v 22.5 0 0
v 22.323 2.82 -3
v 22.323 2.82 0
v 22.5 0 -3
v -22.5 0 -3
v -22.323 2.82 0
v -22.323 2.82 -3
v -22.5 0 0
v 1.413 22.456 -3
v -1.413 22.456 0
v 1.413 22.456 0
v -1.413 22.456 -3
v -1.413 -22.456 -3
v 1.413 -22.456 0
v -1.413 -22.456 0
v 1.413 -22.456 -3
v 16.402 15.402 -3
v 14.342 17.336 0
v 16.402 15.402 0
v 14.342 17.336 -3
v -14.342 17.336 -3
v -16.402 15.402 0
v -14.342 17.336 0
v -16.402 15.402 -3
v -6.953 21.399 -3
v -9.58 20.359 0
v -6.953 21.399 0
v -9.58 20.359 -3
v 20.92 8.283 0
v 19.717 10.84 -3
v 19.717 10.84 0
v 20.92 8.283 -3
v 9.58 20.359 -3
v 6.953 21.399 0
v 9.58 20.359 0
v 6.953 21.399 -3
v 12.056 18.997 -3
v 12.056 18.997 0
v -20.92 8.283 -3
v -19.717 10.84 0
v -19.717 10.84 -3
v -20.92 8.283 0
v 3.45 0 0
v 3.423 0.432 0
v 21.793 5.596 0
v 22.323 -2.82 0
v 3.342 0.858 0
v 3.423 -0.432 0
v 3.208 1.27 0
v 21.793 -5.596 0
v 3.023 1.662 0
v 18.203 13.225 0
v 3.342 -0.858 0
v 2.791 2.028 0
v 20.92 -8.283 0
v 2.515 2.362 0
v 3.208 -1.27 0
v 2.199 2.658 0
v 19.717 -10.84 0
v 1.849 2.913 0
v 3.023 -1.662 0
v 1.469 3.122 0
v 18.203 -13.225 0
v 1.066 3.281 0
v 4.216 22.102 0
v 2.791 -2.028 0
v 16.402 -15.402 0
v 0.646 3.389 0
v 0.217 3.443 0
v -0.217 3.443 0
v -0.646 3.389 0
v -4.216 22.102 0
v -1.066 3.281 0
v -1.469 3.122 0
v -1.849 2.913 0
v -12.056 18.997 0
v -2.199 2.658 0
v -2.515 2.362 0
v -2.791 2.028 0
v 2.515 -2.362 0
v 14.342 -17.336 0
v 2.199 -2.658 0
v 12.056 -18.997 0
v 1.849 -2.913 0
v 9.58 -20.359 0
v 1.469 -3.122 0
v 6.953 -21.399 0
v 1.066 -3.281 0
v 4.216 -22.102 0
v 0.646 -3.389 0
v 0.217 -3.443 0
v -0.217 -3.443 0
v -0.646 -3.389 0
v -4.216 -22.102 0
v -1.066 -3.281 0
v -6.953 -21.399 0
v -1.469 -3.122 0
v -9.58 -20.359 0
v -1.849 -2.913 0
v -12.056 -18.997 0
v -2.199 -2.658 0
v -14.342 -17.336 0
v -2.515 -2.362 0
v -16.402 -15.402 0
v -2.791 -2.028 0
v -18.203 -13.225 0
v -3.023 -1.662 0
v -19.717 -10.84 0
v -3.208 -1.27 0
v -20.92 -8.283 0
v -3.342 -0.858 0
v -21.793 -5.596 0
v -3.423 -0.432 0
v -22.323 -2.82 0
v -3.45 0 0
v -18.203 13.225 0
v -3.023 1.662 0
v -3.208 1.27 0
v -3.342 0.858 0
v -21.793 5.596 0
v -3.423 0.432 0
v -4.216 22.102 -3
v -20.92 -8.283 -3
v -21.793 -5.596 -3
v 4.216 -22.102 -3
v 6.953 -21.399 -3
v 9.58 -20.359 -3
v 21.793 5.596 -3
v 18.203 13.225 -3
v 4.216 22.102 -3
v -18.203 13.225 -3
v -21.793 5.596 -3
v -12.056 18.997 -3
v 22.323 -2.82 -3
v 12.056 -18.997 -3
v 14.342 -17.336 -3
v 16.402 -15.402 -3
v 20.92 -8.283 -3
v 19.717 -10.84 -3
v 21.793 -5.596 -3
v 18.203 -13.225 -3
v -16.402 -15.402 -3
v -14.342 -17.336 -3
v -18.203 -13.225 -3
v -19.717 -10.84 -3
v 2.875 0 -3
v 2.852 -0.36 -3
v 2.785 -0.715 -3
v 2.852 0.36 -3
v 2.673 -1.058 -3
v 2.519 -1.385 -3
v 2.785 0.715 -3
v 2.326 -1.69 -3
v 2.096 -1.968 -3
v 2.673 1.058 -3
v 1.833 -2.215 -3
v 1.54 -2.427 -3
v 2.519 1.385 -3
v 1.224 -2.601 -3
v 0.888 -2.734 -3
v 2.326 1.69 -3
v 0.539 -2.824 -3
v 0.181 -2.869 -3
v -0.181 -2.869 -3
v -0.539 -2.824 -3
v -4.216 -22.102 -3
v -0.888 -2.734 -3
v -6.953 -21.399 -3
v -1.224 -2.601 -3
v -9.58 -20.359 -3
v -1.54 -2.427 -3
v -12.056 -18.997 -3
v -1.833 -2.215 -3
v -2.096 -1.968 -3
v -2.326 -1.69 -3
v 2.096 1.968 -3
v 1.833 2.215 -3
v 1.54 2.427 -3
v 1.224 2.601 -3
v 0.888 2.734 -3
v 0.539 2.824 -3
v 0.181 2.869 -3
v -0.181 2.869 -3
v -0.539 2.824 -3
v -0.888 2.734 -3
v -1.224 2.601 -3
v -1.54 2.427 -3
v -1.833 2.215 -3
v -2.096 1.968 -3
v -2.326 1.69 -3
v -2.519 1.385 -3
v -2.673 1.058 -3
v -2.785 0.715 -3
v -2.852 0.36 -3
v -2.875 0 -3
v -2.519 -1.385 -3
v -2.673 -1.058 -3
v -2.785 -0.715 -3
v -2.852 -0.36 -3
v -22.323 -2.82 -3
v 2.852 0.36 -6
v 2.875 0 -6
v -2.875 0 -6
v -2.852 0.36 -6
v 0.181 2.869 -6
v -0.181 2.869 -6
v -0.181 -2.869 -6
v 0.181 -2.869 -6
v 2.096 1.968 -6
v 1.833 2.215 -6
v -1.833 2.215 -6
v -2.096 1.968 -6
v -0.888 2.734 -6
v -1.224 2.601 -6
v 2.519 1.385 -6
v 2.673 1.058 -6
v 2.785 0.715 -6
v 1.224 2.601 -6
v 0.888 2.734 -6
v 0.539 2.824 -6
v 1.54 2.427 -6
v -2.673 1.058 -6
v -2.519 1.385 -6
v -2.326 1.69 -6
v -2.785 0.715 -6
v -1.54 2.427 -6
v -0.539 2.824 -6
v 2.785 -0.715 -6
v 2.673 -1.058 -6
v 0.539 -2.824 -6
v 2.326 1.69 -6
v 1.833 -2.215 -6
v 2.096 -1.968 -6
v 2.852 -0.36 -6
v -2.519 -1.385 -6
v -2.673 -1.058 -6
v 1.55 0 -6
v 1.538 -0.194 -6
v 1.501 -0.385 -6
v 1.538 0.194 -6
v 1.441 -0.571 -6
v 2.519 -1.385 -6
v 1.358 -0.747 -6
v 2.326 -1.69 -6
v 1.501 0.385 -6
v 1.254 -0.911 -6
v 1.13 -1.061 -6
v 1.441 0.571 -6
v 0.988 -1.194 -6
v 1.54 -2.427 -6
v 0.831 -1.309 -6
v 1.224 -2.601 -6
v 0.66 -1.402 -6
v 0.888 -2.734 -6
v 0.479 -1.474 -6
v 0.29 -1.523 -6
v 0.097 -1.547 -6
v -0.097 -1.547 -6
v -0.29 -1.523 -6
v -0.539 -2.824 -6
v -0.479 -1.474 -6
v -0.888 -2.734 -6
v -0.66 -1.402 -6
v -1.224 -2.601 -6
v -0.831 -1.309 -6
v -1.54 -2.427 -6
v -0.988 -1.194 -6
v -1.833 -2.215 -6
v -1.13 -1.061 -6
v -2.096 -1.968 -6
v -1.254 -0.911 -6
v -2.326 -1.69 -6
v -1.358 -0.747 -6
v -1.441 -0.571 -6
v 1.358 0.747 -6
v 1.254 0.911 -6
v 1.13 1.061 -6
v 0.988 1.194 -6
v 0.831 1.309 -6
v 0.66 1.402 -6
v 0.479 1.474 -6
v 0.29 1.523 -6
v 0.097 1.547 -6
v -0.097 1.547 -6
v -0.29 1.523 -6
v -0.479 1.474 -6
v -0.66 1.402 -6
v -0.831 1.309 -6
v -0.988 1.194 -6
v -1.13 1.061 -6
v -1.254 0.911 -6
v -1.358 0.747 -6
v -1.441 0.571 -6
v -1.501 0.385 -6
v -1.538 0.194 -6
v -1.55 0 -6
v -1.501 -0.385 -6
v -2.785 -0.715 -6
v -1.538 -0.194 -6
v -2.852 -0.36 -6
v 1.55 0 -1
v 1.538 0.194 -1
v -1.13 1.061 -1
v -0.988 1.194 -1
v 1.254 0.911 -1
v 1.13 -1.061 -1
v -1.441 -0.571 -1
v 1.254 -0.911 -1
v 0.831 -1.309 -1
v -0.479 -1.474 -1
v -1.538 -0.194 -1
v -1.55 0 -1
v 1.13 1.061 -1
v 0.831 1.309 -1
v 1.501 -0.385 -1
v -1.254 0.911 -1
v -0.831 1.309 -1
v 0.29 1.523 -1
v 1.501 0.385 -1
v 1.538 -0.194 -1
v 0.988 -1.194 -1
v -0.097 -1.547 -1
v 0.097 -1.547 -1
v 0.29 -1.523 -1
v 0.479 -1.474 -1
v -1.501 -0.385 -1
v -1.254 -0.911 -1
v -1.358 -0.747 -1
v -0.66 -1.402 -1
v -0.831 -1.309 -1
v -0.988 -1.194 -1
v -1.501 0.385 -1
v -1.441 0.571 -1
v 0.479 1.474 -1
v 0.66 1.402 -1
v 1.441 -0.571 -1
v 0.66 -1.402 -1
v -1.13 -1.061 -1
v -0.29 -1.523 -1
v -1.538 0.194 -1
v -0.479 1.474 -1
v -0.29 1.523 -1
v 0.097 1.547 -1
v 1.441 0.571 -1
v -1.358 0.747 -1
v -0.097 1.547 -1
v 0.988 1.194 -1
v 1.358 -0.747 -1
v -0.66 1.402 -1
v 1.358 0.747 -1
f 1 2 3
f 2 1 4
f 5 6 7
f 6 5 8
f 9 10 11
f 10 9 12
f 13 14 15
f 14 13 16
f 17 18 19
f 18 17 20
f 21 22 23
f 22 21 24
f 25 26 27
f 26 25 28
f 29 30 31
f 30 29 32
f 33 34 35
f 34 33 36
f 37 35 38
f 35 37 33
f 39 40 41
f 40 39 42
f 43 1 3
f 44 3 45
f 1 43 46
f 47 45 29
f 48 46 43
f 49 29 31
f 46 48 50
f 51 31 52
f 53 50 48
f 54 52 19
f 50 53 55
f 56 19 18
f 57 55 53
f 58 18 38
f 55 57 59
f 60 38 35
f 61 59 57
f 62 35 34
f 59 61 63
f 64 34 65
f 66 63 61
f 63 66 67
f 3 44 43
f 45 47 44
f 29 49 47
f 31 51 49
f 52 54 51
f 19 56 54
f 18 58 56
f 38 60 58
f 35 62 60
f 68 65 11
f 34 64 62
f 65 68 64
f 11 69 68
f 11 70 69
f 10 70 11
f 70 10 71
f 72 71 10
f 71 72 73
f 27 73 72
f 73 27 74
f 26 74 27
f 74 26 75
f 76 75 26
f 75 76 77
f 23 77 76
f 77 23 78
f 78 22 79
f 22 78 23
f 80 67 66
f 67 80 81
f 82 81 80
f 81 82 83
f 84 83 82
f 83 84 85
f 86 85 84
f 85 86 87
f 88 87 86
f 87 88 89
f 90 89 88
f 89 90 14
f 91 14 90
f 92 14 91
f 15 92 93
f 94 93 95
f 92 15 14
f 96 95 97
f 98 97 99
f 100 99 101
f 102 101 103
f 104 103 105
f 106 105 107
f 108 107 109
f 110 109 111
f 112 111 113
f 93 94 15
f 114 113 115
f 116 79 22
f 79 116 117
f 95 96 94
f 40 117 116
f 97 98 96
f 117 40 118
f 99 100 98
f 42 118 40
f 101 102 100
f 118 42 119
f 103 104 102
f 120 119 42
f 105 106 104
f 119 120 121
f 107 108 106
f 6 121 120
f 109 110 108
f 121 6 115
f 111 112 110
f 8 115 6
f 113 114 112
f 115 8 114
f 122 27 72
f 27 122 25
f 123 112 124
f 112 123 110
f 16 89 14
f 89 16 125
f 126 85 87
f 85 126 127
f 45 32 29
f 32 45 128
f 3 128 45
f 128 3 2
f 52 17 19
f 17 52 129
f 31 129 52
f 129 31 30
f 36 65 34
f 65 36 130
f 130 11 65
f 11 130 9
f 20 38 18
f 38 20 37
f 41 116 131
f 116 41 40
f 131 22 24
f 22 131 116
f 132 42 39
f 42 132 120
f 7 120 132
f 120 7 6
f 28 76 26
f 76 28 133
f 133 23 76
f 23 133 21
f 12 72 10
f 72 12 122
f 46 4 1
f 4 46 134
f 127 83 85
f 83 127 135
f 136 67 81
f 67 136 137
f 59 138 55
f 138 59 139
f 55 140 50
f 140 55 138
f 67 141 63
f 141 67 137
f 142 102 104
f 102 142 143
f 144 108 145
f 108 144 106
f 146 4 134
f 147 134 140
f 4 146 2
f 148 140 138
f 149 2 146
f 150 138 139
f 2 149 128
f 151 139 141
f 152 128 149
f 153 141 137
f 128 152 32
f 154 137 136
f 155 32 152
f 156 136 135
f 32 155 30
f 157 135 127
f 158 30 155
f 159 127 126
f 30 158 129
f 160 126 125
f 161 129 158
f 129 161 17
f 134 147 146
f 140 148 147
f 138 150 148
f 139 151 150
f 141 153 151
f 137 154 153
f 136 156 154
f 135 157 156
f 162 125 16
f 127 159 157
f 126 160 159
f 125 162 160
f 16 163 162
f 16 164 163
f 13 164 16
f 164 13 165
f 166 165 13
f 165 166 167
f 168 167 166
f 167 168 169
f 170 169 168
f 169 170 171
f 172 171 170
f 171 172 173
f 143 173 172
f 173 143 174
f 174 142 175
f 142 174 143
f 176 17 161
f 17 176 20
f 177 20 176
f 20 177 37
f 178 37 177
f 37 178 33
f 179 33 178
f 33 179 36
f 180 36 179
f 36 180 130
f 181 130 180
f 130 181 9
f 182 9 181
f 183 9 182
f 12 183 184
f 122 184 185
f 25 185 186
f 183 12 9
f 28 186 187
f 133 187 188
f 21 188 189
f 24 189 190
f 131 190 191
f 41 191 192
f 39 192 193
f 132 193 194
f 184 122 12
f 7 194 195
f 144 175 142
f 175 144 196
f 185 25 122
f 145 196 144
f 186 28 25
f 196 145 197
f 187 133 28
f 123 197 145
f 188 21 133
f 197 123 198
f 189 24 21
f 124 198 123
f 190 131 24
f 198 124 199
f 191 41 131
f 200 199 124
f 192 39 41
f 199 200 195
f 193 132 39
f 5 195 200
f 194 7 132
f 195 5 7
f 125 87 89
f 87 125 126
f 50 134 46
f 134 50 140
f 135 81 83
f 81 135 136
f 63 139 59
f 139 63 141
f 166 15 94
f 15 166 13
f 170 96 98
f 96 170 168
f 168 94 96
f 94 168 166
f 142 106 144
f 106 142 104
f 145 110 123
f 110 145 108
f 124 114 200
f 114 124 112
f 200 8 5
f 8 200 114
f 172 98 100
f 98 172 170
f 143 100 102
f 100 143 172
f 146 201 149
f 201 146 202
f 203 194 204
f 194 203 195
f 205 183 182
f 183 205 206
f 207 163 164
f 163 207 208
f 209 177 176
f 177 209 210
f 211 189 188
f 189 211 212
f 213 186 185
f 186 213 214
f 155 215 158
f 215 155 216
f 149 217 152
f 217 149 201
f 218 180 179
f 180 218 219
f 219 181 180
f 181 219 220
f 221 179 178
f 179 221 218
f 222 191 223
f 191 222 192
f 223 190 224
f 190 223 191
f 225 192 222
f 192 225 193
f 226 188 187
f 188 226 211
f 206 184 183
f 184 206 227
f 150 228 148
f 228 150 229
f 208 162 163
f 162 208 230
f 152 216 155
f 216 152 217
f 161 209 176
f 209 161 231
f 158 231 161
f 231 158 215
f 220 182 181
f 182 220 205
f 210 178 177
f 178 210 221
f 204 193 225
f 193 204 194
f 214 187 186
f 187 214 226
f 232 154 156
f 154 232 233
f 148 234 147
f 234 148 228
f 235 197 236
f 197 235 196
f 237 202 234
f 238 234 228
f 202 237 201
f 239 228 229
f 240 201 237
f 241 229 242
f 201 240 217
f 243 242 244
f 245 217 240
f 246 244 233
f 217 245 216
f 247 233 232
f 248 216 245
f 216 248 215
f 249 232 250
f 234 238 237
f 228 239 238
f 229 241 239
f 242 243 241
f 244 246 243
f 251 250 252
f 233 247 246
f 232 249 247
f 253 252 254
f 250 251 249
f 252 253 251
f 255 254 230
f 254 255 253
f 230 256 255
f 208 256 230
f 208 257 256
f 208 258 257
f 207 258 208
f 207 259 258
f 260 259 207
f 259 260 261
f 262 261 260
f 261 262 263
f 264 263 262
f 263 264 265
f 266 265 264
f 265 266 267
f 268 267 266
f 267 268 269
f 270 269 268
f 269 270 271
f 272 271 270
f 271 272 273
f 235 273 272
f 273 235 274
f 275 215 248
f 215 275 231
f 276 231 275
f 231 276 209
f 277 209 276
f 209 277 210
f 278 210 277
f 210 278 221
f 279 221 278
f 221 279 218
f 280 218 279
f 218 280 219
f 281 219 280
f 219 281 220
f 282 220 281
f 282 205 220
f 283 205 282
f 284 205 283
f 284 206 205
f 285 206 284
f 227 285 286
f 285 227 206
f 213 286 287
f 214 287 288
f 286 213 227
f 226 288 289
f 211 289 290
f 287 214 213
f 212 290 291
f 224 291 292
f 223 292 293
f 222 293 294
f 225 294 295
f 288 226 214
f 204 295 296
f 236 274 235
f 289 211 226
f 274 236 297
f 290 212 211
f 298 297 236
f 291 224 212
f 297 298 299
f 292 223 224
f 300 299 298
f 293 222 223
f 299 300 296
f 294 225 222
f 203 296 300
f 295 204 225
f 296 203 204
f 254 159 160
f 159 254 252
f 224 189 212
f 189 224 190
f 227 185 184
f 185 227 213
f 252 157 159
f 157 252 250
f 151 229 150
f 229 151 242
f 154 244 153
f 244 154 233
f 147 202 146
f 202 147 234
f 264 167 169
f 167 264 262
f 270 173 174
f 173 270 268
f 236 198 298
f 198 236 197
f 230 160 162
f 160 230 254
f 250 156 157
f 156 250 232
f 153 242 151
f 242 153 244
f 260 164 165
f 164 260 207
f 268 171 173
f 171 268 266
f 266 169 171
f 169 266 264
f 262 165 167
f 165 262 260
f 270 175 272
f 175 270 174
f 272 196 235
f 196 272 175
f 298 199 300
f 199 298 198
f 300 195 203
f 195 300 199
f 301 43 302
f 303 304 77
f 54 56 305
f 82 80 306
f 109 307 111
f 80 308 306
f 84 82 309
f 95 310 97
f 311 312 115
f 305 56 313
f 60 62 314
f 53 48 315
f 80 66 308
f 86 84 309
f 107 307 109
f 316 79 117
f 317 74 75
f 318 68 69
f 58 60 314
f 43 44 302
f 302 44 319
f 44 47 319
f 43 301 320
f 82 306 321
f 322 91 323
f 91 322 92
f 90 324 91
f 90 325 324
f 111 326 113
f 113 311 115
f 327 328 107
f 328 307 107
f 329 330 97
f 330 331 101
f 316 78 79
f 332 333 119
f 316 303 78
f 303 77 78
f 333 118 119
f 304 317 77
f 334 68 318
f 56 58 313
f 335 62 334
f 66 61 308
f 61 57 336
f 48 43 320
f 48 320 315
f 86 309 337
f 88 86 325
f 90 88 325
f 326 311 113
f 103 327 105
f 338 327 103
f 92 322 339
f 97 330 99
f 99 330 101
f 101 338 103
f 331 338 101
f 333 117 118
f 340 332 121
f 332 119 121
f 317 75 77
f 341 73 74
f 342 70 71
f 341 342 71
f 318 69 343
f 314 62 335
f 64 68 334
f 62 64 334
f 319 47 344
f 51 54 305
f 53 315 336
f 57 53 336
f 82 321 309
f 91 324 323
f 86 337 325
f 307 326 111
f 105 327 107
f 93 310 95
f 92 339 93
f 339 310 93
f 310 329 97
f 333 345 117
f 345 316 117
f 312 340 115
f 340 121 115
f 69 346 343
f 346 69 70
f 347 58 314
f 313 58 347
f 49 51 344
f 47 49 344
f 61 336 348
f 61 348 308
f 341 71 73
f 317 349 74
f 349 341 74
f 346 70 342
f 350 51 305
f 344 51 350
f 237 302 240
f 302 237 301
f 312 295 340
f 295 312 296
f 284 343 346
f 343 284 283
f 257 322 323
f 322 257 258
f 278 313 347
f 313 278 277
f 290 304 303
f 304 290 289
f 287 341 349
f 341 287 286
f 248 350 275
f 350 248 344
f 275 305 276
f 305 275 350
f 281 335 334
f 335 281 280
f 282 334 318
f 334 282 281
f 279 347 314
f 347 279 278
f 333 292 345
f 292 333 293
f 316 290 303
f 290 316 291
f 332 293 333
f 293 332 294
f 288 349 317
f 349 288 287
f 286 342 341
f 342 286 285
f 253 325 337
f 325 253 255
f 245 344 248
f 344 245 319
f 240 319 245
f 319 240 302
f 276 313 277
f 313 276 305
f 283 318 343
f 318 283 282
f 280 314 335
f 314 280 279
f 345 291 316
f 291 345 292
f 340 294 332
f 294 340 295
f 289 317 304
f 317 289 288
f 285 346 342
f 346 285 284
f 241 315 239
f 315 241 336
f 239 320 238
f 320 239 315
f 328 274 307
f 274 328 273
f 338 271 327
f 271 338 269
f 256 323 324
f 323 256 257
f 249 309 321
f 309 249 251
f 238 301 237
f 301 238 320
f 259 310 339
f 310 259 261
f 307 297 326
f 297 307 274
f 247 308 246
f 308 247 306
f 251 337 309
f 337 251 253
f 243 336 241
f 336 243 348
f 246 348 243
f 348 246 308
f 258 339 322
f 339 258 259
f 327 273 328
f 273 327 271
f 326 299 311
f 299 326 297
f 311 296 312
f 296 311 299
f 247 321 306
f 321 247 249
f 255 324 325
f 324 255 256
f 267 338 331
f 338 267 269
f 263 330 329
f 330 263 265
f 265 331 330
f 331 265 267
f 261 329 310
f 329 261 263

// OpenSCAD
$fn = 50;


difference() {
	union() {
		translate(v = [0, 0, -3.0000000000]) {
			cylinder(h = 3, r = 22.5000000000);
		}
		translate(v = [0, 0, -6.0000000000]) {
			cylinder(h = 6, r = 2.8750000000);
		}
	}
	union() {
		translate(v = [0, 0, 0]) {
			rotate(a = [0, 0, 0]) {
				difference() {
					union() {
						translate(v = [0, 0, -6.0000000000]) {
							cylinder(h = 6, r = 1.2500000000);
						}
						translate(v = [0, 0, -1.0000000000]) {
							cylinder(h = 1.0000000000, r1 = 1.5500000000, r2 = 3.4500000000);
						}
						translate(v = [0, 0, -6.0000000000]) {
							cylinder(h = 6, r = 1.5500000000);
						}
						translate(v = [0, 0, -6.0000000000]) {
							cylinder(h = 6, r = 1.2500000000);
						}
					}
					union();
				}
			}
		}
	}
}
